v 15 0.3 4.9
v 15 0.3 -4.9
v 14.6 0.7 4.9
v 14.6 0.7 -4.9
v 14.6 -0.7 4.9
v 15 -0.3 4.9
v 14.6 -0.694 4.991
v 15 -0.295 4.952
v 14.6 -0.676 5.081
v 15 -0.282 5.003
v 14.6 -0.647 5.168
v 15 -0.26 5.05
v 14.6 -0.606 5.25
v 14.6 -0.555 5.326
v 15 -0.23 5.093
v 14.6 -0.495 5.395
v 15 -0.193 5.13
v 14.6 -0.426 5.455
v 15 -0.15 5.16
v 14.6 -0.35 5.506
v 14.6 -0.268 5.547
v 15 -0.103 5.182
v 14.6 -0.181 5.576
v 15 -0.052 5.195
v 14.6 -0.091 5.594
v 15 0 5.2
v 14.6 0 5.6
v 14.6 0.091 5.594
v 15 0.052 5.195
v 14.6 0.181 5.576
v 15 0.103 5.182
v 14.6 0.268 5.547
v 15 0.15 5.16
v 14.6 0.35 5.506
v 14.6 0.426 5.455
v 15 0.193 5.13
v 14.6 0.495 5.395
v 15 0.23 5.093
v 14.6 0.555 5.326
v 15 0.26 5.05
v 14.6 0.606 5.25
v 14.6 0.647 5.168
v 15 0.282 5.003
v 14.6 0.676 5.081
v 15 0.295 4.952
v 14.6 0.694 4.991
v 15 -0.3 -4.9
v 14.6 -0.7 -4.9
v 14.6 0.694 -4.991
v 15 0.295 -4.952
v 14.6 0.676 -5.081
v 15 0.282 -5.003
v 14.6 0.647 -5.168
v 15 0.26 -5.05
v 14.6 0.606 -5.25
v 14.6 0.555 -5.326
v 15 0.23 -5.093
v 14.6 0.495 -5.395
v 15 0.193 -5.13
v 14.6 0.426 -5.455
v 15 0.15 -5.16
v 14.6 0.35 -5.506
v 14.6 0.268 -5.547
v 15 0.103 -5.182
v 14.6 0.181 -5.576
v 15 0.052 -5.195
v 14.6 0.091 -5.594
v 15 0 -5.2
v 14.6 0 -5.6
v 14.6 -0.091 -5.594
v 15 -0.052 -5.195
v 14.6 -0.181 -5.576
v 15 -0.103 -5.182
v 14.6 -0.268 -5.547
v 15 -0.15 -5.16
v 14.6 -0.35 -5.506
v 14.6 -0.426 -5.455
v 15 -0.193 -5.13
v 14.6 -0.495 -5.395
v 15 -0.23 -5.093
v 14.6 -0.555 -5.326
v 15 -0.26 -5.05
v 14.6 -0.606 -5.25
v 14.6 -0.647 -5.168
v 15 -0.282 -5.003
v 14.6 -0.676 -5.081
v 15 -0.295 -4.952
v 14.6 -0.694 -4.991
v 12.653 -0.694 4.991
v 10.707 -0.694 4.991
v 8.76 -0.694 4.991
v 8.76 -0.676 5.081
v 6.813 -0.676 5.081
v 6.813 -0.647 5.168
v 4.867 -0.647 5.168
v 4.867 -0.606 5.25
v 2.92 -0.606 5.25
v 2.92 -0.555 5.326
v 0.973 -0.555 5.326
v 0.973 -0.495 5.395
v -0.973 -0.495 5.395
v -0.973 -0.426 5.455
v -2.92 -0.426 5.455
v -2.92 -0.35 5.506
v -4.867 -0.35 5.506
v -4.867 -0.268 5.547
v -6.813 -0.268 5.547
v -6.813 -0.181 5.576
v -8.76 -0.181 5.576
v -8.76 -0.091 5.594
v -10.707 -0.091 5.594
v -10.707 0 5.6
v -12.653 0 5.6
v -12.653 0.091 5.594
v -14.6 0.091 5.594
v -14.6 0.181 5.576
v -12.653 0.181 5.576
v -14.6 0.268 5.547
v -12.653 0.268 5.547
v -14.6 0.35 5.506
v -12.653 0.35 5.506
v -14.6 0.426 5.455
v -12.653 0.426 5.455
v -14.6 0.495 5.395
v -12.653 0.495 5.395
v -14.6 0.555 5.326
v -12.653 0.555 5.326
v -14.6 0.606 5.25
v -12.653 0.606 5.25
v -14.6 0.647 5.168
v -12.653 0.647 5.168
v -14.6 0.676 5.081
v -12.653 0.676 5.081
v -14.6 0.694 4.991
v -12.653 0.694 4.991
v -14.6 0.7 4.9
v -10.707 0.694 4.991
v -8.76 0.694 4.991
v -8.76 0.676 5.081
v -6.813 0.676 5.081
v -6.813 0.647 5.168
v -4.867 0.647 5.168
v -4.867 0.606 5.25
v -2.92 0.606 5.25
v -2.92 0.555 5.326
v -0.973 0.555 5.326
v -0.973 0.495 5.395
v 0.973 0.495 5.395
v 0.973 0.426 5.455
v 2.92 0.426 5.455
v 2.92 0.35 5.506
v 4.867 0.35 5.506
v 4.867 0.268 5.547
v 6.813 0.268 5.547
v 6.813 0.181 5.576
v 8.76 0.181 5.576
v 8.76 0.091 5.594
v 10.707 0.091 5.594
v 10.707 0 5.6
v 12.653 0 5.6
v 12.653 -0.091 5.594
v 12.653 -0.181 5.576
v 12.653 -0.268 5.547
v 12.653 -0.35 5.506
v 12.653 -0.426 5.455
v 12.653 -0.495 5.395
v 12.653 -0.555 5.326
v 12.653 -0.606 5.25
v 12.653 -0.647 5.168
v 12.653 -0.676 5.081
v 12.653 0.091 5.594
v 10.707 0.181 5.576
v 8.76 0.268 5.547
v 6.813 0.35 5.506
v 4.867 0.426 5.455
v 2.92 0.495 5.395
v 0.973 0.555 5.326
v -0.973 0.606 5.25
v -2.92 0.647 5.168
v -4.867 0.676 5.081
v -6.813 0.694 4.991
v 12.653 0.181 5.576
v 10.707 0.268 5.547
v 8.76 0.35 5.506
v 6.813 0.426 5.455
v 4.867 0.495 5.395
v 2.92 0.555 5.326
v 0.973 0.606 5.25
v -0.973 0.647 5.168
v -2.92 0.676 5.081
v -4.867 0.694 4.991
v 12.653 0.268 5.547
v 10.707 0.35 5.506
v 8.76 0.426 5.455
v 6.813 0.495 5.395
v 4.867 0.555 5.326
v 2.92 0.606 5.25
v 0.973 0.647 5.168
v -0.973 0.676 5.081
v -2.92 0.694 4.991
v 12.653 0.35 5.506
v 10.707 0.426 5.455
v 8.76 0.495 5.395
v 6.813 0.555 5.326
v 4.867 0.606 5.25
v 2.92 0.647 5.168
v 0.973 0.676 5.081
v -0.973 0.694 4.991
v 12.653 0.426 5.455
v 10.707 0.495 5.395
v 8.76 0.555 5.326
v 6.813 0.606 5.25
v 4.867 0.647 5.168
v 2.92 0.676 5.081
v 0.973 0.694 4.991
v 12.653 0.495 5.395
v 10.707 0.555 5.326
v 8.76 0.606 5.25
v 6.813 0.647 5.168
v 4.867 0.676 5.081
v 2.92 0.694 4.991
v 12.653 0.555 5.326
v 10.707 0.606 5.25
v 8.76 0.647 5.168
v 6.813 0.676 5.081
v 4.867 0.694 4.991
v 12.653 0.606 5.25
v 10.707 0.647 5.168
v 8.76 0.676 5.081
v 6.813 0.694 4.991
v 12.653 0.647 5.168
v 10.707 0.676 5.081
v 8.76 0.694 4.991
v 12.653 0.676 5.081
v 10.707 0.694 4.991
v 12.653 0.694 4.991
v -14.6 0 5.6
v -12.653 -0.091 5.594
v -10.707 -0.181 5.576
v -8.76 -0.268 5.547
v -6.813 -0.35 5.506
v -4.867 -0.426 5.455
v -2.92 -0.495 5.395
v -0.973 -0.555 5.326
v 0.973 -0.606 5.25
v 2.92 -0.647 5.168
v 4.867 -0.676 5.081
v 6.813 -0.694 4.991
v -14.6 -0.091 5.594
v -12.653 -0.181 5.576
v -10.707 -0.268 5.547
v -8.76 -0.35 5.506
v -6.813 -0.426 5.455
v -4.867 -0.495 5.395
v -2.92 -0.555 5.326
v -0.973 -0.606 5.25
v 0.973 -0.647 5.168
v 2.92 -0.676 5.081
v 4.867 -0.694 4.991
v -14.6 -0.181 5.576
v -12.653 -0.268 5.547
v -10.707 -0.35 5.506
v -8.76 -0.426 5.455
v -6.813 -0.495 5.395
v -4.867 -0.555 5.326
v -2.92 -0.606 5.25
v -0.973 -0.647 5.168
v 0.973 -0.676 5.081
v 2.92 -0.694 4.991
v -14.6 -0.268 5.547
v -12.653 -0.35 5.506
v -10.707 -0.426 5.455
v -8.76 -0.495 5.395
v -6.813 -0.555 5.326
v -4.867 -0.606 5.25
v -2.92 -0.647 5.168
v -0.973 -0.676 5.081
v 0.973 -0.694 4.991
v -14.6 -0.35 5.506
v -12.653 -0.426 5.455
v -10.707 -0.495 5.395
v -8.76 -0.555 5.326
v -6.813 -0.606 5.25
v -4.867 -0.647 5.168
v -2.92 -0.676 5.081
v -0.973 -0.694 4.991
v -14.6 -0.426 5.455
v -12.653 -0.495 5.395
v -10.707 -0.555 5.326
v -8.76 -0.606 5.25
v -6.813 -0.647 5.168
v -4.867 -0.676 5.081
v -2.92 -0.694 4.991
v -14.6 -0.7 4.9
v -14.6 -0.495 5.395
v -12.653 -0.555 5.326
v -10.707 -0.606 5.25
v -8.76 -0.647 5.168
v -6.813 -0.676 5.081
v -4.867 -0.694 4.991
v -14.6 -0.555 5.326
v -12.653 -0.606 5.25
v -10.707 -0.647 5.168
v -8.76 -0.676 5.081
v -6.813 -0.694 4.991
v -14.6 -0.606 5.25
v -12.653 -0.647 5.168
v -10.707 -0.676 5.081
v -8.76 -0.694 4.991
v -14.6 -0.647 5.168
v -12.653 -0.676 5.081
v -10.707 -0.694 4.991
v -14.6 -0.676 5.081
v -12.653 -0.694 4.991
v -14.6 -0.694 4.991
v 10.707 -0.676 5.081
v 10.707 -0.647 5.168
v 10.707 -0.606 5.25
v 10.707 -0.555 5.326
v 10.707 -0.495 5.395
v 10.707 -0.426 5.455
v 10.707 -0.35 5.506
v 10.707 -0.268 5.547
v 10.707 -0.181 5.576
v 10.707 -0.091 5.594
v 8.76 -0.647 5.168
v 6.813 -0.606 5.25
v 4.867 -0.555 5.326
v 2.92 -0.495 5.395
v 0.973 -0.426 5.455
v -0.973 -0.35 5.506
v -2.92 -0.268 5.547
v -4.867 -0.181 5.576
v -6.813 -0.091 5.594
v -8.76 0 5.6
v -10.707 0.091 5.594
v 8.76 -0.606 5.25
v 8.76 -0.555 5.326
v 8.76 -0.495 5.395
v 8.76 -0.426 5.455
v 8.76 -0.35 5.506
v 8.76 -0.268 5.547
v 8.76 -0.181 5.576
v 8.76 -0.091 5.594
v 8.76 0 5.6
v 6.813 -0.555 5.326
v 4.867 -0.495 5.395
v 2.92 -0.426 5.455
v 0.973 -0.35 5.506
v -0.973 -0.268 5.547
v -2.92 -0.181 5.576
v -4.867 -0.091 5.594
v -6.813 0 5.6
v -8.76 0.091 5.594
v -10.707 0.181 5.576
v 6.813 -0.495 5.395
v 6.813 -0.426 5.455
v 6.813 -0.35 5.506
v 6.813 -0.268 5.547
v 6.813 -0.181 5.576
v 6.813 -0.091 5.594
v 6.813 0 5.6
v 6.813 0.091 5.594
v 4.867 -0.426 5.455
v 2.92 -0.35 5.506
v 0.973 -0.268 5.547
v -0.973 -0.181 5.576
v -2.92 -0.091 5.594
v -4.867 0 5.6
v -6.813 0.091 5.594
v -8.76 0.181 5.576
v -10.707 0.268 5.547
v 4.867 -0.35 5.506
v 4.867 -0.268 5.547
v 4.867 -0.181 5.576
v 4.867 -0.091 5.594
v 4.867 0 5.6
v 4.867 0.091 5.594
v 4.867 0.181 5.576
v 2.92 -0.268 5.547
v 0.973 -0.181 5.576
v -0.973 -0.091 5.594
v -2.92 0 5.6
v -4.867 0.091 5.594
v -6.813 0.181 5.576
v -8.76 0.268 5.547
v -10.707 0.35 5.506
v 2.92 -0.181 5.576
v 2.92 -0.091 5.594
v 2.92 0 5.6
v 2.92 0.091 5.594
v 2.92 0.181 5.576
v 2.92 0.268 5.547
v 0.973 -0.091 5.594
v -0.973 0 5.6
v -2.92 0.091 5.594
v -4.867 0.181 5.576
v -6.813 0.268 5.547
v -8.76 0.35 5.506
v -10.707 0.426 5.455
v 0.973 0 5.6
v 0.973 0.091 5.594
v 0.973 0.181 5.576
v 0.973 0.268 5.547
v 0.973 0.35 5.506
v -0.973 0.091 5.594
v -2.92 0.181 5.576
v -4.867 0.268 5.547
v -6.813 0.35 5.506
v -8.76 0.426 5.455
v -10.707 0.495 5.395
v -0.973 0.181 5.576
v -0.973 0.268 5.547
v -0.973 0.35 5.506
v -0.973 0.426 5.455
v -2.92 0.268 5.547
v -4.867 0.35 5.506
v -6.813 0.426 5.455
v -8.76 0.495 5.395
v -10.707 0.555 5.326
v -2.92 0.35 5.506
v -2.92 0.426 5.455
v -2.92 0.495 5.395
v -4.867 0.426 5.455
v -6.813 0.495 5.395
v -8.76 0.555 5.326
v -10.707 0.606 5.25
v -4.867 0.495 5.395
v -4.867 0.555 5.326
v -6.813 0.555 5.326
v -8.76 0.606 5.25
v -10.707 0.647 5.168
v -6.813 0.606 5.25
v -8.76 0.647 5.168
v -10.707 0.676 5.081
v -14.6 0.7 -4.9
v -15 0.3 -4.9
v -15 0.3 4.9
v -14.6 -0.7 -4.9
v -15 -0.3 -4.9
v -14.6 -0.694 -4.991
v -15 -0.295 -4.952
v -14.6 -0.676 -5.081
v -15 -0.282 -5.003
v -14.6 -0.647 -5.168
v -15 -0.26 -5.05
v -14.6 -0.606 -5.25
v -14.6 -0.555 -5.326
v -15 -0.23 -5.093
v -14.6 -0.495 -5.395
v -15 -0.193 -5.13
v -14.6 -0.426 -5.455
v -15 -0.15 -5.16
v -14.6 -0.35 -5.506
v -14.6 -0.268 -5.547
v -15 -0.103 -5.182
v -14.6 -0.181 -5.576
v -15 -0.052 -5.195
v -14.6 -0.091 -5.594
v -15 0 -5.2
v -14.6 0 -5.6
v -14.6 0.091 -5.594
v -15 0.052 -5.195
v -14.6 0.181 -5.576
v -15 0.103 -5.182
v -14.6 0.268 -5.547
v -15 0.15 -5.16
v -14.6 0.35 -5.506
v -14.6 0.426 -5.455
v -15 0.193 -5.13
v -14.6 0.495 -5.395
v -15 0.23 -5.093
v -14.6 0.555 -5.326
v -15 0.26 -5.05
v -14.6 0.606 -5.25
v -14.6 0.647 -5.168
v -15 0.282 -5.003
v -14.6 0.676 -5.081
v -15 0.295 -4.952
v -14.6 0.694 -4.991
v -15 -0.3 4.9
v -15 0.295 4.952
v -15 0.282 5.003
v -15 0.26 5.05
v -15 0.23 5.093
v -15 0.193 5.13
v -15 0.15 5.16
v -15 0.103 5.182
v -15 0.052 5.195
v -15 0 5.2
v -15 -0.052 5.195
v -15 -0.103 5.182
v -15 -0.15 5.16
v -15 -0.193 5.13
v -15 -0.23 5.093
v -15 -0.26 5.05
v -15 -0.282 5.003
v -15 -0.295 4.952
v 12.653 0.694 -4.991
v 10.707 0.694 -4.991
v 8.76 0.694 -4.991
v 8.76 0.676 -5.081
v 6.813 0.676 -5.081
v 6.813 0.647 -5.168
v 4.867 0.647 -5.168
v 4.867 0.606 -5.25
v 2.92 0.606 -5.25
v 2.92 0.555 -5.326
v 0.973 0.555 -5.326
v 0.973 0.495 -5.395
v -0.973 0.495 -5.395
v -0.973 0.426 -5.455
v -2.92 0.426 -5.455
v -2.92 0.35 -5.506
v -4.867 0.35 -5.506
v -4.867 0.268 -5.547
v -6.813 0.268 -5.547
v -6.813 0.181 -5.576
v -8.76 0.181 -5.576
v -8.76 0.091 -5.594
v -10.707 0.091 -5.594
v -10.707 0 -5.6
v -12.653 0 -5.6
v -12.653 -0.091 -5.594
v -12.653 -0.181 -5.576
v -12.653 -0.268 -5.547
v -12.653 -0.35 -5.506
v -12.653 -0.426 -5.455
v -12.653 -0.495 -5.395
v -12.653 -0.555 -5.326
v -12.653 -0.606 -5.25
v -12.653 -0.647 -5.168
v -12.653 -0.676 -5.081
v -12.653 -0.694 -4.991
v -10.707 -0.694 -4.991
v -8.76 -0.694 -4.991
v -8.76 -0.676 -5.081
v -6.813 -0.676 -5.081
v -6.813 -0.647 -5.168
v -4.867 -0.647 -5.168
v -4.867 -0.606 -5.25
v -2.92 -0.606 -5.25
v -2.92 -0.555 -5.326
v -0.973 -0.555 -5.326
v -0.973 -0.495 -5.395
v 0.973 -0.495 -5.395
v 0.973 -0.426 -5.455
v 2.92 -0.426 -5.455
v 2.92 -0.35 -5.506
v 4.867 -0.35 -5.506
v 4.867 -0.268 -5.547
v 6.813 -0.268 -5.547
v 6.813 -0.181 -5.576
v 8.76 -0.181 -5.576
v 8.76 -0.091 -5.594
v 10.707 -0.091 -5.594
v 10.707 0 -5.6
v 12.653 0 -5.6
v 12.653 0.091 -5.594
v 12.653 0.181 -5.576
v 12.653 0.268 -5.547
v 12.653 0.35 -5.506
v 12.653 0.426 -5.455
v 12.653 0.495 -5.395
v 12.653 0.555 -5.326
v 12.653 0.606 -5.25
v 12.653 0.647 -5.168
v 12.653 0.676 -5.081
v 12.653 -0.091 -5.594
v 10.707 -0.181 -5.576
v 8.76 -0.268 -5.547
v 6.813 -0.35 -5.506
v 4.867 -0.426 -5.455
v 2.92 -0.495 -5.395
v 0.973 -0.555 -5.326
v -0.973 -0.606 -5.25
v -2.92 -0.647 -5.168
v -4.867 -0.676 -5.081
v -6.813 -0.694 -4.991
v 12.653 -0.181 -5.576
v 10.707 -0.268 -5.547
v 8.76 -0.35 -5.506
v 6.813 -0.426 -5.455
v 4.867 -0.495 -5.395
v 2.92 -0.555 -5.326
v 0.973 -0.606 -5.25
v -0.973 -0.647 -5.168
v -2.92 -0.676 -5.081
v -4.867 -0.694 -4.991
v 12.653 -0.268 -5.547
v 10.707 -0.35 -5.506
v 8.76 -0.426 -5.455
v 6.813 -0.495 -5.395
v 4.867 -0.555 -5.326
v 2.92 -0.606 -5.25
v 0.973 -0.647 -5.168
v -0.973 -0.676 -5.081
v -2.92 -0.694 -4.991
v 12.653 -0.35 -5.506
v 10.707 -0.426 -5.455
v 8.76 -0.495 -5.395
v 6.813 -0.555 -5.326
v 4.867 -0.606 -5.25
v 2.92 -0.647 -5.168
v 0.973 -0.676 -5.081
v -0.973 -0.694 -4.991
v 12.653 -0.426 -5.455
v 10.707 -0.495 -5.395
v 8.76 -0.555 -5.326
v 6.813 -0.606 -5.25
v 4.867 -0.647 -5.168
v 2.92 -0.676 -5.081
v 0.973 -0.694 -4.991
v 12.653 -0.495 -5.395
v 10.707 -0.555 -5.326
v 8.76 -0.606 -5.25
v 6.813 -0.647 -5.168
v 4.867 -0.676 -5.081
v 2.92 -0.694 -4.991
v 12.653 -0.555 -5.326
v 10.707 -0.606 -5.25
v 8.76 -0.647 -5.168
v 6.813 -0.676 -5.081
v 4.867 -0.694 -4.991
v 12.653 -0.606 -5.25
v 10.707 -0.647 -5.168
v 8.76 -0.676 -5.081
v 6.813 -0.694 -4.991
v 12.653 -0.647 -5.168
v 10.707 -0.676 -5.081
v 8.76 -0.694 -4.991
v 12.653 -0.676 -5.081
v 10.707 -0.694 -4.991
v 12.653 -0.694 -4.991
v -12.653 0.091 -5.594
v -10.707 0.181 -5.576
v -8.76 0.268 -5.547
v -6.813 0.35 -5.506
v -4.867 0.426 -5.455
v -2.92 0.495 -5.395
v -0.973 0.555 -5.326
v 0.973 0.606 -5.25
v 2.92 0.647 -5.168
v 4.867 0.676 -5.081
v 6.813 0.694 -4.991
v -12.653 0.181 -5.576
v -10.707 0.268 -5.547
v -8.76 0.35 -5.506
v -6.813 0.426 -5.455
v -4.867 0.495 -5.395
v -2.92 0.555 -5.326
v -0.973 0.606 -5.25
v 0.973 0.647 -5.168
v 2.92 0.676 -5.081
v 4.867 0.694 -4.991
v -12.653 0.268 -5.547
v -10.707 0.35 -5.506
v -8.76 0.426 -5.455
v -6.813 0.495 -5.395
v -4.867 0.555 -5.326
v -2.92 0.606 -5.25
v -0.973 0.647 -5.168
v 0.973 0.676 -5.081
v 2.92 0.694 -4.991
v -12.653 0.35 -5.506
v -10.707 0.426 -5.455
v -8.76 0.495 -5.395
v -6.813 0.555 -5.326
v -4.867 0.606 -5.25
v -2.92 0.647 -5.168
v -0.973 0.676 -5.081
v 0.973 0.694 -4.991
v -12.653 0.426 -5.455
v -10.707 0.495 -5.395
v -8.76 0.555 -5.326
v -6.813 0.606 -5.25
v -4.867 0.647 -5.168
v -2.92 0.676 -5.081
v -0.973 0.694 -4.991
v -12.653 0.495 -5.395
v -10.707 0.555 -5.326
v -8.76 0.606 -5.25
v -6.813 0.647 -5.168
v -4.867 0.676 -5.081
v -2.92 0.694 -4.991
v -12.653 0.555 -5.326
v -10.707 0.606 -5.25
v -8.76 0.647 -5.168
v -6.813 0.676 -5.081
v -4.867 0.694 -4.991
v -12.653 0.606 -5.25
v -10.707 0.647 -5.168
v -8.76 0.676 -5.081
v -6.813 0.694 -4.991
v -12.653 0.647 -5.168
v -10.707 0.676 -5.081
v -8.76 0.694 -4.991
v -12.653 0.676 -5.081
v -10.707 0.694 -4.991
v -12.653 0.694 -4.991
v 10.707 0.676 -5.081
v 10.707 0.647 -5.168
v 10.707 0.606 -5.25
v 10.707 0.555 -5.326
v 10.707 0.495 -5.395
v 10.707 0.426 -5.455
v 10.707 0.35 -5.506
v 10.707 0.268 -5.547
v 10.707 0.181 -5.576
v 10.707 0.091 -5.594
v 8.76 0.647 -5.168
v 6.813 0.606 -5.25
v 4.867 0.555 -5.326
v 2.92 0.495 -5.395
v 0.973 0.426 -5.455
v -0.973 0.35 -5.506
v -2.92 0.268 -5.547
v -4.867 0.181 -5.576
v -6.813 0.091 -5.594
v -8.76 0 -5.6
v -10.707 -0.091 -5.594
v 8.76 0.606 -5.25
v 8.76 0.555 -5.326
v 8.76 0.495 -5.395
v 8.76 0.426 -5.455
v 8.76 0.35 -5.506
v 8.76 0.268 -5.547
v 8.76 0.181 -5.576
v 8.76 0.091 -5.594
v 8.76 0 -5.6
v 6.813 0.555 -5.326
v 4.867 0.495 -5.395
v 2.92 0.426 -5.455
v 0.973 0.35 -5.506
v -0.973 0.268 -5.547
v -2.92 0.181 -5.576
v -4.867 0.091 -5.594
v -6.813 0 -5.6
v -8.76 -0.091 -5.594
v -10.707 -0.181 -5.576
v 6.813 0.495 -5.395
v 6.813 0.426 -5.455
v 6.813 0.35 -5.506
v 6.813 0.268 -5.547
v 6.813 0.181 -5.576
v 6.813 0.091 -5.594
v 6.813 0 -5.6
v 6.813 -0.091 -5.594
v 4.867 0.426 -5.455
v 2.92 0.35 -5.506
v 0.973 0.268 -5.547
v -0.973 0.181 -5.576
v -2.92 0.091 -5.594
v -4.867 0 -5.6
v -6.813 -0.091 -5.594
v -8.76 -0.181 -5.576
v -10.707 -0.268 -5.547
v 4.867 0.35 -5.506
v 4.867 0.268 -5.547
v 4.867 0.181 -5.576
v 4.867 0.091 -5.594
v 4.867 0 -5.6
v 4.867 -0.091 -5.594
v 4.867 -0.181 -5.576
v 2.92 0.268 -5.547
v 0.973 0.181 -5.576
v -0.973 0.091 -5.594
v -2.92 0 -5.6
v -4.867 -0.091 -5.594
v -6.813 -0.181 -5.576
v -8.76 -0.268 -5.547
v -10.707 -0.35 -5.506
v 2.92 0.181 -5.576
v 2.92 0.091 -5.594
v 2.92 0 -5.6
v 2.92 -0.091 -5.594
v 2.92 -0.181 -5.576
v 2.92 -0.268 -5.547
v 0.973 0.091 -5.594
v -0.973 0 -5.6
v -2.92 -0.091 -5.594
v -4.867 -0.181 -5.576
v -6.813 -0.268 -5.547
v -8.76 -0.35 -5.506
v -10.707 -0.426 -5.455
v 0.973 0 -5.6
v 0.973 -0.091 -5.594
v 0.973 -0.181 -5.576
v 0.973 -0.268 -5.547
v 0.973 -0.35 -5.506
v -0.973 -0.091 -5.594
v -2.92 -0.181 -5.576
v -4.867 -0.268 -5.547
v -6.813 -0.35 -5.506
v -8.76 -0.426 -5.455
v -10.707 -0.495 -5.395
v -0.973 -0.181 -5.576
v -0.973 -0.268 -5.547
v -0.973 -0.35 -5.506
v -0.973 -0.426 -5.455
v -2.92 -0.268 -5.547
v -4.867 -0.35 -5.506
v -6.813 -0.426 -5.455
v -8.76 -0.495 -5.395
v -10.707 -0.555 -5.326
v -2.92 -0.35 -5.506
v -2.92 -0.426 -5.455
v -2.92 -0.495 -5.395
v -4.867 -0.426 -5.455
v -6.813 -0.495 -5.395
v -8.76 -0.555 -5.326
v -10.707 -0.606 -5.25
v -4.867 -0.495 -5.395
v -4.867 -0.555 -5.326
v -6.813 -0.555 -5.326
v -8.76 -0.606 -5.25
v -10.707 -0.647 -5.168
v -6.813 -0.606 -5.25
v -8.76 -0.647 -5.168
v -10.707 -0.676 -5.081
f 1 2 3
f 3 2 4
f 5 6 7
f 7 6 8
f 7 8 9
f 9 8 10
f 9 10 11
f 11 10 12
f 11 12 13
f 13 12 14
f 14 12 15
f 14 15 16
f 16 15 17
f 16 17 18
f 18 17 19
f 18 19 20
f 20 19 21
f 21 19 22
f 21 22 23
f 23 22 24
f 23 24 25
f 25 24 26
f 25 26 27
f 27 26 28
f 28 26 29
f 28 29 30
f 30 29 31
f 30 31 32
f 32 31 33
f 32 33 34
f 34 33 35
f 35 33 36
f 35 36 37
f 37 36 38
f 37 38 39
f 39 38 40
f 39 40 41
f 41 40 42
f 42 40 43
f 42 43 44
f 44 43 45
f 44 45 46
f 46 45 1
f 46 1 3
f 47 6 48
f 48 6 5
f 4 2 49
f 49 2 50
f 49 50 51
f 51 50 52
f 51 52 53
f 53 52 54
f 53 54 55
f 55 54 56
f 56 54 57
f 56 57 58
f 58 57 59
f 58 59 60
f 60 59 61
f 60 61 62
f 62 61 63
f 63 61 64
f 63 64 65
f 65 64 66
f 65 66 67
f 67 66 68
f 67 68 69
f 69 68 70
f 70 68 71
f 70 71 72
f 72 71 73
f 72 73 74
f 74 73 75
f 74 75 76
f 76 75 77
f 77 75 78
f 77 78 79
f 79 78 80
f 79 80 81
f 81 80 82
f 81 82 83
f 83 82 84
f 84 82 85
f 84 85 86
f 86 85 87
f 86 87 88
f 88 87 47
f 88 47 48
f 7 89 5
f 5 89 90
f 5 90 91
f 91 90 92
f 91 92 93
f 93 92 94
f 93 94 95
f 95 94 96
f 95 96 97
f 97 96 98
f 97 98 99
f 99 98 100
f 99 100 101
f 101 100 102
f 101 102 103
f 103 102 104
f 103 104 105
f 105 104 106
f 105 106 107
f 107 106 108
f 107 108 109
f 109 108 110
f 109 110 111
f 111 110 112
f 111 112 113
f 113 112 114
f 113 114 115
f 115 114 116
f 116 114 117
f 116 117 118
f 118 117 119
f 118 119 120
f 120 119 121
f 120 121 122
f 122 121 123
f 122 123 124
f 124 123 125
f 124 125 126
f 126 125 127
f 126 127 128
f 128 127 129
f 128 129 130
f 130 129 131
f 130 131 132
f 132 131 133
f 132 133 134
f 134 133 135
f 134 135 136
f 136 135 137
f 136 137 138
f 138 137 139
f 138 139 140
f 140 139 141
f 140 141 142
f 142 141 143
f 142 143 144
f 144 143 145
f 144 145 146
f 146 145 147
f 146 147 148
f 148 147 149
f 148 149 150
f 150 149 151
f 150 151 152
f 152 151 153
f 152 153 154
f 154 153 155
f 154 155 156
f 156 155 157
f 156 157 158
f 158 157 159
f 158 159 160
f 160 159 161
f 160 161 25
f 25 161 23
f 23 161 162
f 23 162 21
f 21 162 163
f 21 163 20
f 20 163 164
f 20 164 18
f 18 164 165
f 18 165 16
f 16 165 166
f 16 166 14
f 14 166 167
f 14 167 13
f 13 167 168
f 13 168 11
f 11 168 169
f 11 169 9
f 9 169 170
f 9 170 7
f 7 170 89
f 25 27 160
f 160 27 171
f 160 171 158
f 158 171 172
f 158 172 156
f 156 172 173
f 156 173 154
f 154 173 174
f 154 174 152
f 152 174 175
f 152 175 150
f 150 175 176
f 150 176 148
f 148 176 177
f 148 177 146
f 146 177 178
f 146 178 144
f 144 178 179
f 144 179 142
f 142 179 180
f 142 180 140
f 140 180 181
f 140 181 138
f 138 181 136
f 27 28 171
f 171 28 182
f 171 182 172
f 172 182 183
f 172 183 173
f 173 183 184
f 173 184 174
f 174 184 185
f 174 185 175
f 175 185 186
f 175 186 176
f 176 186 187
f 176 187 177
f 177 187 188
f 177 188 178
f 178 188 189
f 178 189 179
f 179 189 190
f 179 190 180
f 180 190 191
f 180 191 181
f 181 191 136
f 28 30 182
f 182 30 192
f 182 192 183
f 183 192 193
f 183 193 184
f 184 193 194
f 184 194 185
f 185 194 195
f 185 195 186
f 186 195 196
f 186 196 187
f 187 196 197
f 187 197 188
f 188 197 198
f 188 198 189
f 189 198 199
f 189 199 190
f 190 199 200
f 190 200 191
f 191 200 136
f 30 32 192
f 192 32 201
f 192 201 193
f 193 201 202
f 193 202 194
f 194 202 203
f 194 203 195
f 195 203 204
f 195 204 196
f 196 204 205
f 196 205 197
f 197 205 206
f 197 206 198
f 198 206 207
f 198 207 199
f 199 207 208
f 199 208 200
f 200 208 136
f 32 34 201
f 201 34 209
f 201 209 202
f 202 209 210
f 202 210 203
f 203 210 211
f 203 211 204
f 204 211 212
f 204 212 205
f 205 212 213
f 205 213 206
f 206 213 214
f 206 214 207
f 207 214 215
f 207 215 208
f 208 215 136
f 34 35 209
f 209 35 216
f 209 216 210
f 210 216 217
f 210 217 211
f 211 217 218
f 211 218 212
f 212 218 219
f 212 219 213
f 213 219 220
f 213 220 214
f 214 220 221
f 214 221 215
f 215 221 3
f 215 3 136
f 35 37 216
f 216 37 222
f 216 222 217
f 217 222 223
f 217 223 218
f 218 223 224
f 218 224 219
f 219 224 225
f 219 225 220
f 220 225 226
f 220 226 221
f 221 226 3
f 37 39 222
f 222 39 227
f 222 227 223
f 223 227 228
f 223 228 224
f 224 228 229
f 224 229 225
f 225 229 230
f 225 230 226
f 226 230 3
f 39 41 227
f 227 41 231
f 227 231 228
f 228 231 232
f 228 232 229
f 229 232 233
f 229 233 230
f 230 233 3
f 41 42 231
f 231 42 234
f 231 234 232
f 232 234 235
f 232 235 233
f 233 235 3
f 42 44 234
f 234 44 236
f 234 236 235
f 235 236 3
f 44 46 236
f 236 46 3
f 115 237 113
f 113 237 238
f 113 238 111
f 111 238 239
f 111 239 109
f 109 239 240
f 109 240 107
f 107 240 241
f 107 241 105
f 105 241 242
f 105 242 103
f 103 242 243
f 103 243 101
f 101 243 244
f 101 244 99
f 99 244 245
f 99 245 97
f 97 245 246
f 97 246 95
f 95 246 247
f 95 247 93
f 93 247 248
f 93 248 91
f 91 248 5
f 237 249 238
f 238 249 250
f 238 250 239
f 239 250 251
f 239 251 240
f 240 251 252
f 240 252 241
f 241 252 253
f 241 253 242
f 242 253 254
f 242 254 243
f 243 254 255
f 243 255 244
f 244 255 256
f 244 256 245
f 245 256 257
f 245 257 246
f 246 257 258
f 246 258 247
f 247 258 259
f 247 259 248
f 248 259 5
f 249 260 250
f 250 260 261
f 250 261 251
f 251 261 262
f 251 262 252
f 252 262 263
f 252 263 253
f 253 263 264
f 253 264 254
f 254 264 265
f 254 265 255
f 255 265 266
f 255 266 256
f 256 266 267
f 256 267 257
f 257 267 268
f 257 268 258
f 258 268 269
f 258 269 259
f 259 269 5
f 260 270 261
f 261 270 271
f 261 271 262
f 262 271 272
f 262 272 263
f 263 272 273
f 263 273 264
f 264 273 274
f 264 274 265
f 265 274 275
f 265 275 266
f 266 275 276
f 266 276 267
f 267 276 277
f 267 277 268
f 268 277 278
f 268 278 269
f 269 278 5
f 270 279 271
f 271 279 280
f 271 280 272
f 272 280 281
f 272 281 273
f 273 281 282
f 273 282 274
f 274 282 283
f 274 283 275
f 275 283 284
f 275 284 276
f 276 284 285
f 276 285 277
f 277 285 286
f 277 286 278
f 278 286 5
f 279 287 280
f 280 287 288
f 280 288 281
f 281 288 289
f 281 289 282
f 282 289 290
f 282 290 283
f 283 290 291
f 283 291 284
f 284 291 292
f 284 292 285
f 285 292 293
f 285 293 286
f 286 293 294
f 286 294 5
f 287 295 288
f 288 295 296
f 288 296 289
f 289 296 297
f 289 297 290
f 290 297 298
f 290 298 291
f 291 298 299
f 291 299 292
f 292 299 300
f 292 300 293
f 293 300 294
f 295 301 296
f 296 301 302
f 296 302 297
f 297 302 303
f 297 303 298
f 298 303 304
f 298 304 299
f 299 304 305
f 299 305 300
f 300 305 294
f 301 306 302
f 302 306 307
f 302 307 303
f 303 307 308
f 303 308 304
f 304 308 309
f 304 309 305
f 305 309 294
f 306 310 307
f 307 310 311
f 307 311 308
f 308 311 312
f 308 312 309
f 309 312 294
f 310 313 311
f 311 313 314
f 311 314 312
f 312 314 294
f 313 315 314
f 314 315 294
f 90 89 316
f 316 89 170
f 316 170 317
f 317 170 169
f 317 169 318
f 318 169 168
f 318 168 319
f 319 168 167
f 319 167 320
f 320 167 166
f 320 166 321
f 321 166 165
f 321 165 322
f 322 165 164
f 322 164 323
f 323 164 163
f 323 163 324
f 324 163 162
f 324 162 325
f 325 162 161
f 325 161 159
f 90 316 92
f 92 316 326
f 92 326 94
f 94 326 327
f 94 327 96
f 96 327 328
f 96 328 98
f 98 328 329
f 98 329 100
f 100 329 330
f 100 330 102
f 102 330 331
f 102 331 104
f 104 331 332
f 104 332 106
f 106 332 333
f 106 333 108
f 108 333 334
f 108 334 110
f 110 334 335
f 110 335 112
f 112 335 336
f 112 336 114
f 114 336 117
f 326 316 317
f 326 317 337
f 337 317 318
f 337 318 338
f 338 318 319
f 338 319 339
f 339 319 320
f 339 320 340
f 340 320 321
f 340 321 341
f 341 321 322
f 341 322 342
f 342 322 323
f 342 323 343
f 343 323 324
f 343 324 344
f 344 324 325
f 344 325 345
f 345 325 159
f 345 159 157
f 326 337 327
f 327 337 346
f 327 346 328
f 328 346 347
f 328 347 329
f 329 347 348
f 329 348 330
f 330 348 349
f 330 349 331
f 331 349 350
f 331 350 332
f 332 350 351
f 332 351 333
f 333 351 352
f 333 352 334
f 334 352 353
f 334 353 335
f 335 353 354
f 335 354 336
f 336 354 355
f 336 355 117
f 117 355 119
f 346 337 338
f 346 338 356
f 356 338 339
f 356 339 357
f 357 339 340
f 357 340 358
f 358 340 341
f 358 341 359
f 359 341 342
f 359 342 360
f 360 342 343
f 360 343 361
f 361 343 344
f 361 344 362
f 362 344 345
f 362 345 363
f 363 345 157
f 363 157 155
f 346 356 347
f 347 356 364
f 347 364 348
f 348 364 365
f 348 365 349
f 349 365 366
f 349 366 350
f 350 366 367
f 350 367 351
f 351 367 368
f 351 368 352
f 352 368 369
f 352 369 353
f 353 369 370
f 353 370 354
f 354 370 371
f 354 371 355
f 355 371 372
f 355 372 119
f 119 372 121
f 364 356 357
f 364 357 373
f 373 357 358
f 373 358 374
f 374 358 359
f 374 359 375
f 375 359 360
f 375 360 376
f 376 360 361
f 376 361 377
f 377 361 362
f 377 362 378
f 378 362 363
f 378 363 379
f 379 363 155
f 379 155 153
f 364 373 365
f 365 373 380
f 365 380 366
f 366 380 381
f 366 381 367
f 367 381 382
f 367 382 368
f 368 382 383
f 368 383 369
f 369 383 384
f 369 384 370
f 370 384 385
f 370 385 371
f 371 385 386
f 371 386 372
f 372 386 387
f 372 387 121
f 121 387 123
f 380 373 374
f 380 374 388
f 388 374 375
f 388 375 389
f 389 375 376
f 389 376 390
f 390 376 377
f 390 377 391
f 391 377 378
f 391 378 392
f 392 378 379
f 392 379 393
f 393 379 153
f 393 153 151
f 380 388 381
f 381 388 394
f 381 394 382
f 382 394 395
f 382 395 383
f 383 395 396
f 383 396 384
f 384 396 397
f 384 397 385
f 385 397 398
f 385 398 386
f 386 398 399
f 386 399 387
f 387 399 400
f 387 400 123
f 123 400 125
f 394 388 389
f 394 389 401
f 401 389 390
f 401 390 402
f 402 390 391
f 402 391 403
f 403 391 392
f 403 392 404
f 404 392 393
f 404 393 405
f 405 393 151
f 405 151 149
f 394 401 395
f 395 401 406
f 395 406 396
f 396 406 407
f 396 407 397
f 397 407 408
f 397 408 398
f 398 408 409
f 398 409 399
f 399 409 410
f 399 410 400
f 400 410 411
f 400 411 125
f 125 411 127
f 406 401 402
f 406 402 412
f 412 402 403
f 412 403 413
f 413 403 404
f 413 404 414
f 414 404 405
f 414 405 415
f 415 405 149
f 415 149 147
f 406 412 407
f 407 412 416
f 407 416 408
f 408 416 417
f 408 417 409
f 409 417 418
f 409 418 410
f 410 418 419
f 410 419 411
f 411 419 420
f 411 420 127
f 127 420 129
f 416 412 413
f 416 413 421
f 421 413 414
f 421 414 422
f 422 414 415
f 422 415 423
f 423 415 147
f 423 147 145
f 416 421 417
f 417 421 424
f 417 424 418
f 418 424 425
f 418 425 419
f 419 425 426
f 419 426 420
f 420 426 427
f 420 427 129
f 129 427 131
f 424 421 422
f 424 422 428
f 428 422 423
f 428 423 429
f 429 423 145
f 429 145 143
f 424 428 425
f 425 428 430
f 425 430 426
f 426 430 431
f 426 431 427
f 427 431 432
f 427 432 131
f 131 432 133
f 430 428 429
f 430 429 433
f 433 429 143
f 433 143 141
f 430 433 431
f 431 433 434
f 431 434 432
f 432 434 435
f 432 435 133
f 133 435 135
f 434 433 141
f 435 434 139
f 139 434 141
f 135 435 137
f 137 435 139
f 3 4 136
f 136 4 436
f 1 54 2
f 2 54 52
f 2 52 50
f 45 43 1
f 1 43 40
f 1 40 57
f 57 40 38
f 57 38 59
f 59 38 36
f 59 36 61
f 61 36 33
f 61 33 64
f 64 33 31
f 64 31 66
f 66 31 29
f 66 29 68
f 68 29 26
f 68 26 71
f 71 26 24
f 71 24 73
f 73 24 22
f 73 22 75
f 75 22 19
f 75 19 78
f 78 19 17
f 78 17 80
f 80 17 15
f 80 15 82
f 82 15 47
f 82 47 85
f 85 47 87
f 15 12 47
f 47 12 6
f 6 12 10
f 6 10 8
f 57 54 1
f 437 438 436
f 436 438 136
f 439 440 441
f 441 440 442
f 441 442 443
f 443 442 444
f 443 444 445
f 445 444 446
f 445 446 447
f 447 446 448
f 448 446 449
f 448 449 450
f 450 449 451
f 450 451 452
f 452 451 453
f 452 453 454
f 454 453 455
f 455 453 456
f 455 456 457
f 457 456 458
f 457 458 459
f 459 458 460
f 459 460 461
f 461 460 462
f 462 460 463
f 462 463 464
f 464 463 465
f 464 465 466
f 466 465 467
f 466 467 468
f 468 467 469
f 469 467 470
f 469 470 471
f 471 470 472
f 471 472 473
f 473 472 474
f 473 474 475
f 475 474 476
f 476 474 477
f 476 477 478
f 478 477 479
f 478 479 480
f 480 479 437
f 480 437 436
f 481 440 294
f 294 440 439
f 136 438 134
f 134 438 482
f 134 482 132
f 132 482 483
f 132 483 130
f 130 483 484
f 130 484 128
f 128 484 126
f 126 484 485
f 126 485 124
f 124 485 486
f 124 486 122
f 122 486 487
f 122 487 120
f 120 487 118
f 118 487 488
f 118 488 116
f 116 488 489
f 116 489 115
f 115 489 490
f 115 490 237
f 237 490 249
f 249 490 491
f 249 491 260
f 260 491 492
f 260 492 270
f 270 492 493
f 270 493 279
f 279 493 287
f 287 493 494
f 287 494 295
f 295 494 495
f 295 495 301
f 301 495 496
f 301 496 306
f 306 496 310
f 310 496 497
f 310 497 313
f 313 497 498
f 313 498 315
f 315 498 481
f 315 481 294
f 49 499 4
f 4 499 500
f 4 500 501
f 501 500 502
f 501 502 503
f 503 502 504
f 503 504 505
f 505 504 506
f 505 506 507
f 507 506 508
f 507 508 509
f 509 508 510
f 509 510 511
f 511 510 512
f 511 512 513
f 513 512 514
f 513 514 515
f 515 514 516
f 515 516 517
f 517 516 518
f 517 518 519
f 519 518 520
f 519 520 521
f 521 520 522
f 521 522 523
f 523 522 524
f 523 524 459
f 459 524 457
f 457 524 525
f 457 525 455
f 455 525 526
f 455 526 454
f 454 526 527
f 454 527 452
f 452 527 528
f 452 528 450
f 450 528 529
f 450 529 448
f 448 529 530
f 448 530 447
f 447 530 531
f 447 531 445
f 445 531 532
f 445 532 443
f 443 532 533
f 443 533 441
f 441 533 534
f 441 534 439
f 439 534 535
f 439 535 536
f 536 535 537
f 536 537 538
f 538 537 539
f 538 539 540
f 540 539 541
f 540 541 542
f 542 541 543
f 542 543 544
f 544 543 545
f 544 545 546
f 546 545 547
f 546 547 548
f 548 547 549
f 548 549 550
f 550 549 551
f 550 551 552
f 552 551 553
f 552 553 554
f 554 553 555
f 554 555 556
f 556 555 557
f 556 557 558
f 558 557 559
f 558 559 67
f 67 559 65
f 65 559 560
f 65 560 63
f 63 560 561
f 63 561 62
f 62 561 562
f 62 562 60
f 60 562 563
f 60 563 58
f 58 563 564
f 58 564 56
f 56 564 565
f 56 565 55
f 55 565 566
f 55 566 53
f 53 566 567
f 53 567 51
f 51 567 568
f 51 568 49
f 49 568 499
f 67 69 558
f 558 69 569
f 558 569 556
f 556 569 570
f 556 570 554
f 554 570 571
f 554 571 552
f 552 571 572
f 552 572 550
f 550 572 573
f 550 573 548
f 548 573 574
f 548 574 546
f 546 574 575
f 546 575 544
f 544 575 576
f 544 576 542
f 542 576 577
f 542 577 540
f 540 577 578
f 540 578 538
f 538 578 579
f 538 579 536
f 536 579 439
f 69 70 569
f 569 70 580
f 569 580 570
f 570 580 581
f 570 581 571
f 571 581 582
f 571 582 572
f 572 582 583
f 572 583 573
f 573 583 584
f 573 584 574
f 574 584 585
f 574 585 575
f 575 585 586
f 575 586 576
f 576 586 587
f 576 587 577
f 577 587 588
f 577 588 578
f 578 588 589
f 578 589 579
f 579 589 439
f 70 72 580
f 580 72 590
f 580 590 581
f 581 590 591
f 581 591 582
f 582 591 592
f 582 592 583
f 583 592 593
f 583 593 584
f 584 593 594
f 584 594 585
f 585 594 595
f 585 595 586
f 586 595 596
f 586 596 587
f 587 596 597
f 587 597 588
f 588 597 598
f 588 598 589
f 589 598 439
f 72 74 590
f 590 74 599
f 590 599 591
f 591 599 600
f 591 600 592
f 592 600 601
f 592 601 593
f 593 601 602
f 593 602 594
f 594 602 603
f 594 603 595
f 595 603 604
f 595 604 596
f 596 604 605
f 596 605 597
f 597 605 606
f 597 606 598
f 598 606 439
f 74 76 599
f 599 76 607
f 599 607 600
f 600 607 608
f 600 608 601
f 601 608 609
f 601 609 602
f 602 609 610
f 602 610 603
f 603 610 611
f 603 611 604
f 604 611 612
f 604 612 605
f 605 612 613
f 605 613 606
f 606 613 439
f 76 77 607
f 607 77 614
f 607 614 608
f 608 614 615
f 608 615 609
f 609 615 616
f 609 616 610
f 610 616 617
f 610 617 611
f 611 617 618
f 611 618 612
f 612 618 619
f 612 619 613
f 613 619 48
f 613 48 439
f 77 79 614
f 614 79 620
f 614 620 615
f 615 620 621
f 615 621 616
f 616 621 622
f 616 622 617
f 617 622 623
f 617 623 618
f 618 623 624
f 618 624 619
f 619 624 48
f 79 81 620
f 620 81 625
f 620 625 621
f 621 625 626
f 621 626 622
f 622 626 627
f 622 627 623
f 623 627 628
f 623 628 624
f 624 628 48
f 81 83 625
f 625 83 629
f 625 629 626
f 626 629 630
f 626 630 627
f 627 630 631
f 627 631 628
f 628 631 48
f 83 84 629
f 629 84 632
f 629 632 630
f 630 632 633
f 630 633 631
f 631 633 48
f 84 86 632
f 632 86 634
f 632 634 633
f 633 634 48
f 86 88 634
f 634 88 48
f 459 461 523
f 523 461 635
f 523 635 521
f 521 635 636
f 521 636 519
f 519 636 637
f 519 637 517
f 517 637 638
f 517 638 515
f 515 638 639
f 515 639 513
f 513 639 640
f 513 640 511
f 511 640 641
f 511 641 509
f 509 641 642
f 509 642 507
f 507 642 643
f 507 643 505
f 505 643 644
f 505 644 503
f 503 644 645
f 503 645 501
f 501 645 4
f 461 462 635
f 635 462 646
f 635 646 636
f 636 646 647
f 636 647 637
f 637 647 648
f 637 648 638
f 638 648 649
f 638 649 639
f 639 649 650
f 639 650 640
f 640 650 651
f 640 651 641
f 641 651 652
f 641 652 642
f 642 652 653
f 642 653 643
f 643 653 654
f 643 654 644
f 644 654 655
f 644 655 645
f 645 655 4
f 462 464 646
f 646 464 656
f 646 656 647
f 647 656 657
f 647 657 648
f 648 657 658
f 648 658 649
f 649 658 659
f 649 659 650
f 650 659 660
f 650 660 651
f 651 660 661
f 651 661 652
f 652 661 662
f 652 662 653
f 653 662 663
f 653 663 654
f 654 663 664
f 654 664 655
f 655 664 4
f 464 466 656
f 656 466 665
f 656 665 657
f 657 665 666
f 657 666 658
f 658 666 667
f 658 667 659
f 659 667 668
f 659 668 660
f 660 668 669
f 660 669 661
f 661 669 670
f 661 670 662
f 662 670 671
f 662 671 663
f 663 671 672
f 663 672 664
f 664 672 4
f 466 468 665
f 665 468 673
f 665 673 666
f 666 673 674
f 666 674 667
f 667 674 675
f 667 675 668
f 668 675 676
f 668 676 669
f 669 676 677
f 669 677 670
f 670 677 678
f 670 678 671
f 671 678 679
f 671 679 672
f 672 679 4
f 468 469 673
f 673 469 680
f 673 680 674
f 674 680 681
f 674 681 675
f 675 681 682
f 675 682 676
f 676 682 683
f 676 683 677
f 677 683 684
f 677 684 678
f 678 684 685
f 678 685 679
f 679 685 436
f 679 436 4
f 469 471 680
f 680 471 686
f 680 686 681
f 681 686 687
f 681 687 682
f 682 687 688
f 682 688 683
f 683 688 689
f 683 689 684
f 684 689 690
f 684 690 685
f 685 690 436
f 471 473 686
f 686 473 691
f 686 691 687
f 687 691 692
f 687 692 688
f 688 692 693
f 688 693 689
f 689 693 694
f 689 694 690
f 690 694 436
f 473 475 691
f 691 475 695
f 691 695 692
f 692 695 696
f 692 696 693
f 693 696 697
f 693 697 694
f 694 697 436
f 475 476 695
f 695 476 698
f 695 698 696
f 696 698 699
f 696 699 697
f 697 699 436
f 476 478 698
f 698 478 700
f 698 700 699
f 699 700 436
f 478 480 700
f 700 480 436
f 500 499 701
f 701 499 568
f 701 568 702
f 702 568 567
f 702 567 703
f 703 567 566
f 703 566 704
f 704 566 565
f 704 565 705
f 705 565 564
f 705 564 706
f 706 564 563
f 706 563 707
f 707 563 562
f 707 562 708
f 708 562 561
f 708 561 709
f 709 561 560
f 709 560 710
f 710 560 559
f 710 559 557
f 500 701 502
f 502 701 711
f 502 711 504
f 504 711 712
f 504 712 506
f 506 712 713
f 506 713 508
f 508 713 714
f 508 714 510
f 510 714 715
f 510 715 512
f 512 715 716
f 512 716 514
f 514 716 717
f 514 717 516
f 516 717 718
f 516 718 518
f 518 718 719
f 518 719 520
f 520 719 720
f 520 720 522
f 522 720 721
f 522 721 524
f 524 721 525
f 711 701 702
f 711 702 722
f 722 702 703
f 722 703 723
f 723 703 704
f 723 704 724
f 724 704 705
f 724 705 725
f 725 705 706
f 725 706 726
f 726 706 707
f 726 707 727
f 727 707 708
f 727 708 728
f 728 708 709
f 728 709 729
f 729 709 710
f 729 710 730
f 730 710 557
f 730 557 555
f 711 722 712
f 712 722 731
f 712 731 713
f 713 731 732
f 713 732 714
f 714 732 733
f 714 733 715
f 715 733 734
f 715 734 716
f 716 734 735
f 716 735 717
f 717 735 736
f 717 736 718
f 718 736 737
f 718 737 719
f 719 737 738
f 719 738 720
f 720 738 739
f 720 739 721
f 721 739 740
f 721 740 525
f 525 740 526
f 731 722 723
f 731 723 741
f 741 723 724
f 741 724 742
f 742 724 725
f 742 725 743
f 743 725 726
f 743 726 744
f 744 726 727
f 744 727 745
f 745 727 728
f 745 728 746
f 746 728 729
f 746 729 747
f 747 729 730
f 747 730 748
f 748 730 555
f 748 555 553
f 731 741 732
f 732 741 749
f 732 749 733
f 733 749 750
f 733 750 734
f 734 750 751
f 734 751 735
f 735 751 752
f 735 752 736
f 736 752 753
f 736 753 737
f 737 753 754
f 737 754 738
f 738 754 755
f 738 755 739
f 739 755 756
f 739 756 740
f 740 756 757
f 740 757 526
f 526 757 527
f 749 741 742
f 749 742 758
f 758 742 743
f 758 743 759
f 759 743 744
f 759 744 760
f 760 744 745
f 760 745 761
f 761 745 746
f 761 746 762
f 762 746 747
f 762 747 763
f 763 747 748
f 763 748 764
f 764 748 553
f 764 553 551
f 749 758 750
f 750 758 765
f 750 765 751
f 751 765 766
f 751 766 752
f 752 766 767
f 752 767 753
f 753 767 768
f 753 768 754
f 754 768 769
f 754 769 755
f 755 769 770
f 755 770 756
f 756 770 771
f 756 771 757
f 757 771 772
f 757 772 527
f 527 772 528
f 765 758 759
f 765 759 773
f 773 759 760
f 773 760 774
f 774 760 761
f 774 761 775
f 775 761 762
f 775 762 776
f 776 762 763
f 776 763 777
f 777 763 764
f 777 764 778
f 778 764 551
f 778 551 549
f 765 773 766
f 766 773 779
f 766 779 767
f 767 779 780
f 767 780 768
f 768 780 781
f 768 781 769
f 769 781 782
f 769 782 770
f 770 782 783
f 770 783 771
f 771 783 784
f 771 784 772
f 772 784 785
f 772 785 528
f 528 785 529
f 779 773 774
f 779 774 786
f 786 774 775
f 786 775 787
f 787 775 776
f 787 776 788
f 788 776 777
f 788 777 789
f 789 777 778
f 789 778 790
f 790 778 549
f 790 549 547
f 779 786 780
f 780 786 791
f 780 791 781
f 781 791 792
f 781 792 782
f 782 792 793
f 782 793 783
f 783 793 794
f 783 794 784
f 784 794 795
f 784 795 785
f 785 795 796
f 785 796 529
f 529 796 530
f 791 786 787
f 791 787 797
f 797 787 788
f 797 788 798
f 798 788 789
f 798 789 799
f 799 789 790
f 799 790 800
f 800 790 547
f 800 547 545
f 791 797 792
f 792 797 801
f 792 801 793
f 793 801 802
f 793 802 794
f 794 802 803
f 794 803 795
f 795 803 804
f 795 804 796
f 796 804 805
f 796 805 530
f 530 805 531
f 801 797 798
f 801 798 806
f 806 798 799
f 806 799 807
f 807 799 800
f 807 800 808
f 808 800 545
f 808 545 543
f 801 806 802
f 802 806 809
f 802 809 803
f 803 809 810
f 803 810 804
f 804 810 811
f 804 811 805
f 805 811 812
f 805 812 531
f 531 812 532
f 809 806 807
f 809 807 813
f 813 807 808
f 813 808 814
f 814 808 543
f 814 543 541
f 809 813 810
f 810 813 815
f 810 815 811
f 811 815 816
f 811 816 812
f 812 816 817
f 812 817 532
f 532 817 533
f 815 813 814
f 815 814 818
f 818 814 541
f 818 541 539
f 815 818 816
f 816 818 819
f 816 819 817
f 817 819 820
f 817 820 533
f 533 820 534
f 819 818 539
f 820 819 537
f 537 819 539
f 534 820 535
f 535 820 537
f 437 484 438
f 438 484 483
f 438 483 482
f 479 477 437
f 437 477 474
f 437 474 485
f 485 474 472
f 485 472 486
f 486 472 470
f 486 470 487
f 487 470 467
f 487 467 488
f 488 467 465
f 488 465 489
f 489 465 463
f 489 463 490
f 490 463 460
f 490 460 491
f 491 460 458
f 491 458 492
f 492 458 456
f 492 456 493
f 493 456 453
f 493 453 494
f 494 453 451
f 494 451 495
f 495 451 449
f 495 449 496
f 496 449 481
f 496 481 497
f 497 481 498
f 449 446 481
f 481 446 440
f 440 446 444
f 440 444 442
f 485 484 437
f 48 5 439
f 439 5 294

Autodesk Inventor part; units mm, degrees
ref_plane "YZ Plane" through (0, 0, 0) normal (1, 0, 0) x (0, 1, 0)
ref_plane "XZ Plane" through (0, 0, 0) normal (0, 1, 0) x (-1, 0, 0)
ref_plane "XY Plane" through (0, 0, 0) normal (0, 0, 1) x (1, 0, 0)
sketch "Sketch1" plane through (0, 0, 0) normal (1, 0, 0) x (0, 1, 0)
  line L0 (0, 4.9) -> (0, -4.9) construction
  line L1 (-0.7, 4.9) -> (-0.7, -4.9)
  line L2 (0.7, -4.9) -> (0.7, 4.9)
  arc A0 (0.7, 4.9) -> (-0.7, 4.9) centre (0, 4.9) ccw
  arc A1 (-0.7, -4.9) -> (0.7, -4.9) centre (0, -4.9) ccw
  point P0 (0, 0)
  dimension "d0" = 4.9
  dimension "d1" = 1.4
extrude "Extrusion1" add sketch "Sketch1" along normal mid plane 30
chamfer "Chamfer1" distance 0.4 angle 45 8 edges at (-15, 0.7, 0) (-15, 0, -5.6) (-15, -0.7, 0) (-15, 0, 5.6) (15, 0.7, 0) (15, 0, 5.6) (15, -0.7, 0) (15, 0, -5.6)
properties part number "Domino"
